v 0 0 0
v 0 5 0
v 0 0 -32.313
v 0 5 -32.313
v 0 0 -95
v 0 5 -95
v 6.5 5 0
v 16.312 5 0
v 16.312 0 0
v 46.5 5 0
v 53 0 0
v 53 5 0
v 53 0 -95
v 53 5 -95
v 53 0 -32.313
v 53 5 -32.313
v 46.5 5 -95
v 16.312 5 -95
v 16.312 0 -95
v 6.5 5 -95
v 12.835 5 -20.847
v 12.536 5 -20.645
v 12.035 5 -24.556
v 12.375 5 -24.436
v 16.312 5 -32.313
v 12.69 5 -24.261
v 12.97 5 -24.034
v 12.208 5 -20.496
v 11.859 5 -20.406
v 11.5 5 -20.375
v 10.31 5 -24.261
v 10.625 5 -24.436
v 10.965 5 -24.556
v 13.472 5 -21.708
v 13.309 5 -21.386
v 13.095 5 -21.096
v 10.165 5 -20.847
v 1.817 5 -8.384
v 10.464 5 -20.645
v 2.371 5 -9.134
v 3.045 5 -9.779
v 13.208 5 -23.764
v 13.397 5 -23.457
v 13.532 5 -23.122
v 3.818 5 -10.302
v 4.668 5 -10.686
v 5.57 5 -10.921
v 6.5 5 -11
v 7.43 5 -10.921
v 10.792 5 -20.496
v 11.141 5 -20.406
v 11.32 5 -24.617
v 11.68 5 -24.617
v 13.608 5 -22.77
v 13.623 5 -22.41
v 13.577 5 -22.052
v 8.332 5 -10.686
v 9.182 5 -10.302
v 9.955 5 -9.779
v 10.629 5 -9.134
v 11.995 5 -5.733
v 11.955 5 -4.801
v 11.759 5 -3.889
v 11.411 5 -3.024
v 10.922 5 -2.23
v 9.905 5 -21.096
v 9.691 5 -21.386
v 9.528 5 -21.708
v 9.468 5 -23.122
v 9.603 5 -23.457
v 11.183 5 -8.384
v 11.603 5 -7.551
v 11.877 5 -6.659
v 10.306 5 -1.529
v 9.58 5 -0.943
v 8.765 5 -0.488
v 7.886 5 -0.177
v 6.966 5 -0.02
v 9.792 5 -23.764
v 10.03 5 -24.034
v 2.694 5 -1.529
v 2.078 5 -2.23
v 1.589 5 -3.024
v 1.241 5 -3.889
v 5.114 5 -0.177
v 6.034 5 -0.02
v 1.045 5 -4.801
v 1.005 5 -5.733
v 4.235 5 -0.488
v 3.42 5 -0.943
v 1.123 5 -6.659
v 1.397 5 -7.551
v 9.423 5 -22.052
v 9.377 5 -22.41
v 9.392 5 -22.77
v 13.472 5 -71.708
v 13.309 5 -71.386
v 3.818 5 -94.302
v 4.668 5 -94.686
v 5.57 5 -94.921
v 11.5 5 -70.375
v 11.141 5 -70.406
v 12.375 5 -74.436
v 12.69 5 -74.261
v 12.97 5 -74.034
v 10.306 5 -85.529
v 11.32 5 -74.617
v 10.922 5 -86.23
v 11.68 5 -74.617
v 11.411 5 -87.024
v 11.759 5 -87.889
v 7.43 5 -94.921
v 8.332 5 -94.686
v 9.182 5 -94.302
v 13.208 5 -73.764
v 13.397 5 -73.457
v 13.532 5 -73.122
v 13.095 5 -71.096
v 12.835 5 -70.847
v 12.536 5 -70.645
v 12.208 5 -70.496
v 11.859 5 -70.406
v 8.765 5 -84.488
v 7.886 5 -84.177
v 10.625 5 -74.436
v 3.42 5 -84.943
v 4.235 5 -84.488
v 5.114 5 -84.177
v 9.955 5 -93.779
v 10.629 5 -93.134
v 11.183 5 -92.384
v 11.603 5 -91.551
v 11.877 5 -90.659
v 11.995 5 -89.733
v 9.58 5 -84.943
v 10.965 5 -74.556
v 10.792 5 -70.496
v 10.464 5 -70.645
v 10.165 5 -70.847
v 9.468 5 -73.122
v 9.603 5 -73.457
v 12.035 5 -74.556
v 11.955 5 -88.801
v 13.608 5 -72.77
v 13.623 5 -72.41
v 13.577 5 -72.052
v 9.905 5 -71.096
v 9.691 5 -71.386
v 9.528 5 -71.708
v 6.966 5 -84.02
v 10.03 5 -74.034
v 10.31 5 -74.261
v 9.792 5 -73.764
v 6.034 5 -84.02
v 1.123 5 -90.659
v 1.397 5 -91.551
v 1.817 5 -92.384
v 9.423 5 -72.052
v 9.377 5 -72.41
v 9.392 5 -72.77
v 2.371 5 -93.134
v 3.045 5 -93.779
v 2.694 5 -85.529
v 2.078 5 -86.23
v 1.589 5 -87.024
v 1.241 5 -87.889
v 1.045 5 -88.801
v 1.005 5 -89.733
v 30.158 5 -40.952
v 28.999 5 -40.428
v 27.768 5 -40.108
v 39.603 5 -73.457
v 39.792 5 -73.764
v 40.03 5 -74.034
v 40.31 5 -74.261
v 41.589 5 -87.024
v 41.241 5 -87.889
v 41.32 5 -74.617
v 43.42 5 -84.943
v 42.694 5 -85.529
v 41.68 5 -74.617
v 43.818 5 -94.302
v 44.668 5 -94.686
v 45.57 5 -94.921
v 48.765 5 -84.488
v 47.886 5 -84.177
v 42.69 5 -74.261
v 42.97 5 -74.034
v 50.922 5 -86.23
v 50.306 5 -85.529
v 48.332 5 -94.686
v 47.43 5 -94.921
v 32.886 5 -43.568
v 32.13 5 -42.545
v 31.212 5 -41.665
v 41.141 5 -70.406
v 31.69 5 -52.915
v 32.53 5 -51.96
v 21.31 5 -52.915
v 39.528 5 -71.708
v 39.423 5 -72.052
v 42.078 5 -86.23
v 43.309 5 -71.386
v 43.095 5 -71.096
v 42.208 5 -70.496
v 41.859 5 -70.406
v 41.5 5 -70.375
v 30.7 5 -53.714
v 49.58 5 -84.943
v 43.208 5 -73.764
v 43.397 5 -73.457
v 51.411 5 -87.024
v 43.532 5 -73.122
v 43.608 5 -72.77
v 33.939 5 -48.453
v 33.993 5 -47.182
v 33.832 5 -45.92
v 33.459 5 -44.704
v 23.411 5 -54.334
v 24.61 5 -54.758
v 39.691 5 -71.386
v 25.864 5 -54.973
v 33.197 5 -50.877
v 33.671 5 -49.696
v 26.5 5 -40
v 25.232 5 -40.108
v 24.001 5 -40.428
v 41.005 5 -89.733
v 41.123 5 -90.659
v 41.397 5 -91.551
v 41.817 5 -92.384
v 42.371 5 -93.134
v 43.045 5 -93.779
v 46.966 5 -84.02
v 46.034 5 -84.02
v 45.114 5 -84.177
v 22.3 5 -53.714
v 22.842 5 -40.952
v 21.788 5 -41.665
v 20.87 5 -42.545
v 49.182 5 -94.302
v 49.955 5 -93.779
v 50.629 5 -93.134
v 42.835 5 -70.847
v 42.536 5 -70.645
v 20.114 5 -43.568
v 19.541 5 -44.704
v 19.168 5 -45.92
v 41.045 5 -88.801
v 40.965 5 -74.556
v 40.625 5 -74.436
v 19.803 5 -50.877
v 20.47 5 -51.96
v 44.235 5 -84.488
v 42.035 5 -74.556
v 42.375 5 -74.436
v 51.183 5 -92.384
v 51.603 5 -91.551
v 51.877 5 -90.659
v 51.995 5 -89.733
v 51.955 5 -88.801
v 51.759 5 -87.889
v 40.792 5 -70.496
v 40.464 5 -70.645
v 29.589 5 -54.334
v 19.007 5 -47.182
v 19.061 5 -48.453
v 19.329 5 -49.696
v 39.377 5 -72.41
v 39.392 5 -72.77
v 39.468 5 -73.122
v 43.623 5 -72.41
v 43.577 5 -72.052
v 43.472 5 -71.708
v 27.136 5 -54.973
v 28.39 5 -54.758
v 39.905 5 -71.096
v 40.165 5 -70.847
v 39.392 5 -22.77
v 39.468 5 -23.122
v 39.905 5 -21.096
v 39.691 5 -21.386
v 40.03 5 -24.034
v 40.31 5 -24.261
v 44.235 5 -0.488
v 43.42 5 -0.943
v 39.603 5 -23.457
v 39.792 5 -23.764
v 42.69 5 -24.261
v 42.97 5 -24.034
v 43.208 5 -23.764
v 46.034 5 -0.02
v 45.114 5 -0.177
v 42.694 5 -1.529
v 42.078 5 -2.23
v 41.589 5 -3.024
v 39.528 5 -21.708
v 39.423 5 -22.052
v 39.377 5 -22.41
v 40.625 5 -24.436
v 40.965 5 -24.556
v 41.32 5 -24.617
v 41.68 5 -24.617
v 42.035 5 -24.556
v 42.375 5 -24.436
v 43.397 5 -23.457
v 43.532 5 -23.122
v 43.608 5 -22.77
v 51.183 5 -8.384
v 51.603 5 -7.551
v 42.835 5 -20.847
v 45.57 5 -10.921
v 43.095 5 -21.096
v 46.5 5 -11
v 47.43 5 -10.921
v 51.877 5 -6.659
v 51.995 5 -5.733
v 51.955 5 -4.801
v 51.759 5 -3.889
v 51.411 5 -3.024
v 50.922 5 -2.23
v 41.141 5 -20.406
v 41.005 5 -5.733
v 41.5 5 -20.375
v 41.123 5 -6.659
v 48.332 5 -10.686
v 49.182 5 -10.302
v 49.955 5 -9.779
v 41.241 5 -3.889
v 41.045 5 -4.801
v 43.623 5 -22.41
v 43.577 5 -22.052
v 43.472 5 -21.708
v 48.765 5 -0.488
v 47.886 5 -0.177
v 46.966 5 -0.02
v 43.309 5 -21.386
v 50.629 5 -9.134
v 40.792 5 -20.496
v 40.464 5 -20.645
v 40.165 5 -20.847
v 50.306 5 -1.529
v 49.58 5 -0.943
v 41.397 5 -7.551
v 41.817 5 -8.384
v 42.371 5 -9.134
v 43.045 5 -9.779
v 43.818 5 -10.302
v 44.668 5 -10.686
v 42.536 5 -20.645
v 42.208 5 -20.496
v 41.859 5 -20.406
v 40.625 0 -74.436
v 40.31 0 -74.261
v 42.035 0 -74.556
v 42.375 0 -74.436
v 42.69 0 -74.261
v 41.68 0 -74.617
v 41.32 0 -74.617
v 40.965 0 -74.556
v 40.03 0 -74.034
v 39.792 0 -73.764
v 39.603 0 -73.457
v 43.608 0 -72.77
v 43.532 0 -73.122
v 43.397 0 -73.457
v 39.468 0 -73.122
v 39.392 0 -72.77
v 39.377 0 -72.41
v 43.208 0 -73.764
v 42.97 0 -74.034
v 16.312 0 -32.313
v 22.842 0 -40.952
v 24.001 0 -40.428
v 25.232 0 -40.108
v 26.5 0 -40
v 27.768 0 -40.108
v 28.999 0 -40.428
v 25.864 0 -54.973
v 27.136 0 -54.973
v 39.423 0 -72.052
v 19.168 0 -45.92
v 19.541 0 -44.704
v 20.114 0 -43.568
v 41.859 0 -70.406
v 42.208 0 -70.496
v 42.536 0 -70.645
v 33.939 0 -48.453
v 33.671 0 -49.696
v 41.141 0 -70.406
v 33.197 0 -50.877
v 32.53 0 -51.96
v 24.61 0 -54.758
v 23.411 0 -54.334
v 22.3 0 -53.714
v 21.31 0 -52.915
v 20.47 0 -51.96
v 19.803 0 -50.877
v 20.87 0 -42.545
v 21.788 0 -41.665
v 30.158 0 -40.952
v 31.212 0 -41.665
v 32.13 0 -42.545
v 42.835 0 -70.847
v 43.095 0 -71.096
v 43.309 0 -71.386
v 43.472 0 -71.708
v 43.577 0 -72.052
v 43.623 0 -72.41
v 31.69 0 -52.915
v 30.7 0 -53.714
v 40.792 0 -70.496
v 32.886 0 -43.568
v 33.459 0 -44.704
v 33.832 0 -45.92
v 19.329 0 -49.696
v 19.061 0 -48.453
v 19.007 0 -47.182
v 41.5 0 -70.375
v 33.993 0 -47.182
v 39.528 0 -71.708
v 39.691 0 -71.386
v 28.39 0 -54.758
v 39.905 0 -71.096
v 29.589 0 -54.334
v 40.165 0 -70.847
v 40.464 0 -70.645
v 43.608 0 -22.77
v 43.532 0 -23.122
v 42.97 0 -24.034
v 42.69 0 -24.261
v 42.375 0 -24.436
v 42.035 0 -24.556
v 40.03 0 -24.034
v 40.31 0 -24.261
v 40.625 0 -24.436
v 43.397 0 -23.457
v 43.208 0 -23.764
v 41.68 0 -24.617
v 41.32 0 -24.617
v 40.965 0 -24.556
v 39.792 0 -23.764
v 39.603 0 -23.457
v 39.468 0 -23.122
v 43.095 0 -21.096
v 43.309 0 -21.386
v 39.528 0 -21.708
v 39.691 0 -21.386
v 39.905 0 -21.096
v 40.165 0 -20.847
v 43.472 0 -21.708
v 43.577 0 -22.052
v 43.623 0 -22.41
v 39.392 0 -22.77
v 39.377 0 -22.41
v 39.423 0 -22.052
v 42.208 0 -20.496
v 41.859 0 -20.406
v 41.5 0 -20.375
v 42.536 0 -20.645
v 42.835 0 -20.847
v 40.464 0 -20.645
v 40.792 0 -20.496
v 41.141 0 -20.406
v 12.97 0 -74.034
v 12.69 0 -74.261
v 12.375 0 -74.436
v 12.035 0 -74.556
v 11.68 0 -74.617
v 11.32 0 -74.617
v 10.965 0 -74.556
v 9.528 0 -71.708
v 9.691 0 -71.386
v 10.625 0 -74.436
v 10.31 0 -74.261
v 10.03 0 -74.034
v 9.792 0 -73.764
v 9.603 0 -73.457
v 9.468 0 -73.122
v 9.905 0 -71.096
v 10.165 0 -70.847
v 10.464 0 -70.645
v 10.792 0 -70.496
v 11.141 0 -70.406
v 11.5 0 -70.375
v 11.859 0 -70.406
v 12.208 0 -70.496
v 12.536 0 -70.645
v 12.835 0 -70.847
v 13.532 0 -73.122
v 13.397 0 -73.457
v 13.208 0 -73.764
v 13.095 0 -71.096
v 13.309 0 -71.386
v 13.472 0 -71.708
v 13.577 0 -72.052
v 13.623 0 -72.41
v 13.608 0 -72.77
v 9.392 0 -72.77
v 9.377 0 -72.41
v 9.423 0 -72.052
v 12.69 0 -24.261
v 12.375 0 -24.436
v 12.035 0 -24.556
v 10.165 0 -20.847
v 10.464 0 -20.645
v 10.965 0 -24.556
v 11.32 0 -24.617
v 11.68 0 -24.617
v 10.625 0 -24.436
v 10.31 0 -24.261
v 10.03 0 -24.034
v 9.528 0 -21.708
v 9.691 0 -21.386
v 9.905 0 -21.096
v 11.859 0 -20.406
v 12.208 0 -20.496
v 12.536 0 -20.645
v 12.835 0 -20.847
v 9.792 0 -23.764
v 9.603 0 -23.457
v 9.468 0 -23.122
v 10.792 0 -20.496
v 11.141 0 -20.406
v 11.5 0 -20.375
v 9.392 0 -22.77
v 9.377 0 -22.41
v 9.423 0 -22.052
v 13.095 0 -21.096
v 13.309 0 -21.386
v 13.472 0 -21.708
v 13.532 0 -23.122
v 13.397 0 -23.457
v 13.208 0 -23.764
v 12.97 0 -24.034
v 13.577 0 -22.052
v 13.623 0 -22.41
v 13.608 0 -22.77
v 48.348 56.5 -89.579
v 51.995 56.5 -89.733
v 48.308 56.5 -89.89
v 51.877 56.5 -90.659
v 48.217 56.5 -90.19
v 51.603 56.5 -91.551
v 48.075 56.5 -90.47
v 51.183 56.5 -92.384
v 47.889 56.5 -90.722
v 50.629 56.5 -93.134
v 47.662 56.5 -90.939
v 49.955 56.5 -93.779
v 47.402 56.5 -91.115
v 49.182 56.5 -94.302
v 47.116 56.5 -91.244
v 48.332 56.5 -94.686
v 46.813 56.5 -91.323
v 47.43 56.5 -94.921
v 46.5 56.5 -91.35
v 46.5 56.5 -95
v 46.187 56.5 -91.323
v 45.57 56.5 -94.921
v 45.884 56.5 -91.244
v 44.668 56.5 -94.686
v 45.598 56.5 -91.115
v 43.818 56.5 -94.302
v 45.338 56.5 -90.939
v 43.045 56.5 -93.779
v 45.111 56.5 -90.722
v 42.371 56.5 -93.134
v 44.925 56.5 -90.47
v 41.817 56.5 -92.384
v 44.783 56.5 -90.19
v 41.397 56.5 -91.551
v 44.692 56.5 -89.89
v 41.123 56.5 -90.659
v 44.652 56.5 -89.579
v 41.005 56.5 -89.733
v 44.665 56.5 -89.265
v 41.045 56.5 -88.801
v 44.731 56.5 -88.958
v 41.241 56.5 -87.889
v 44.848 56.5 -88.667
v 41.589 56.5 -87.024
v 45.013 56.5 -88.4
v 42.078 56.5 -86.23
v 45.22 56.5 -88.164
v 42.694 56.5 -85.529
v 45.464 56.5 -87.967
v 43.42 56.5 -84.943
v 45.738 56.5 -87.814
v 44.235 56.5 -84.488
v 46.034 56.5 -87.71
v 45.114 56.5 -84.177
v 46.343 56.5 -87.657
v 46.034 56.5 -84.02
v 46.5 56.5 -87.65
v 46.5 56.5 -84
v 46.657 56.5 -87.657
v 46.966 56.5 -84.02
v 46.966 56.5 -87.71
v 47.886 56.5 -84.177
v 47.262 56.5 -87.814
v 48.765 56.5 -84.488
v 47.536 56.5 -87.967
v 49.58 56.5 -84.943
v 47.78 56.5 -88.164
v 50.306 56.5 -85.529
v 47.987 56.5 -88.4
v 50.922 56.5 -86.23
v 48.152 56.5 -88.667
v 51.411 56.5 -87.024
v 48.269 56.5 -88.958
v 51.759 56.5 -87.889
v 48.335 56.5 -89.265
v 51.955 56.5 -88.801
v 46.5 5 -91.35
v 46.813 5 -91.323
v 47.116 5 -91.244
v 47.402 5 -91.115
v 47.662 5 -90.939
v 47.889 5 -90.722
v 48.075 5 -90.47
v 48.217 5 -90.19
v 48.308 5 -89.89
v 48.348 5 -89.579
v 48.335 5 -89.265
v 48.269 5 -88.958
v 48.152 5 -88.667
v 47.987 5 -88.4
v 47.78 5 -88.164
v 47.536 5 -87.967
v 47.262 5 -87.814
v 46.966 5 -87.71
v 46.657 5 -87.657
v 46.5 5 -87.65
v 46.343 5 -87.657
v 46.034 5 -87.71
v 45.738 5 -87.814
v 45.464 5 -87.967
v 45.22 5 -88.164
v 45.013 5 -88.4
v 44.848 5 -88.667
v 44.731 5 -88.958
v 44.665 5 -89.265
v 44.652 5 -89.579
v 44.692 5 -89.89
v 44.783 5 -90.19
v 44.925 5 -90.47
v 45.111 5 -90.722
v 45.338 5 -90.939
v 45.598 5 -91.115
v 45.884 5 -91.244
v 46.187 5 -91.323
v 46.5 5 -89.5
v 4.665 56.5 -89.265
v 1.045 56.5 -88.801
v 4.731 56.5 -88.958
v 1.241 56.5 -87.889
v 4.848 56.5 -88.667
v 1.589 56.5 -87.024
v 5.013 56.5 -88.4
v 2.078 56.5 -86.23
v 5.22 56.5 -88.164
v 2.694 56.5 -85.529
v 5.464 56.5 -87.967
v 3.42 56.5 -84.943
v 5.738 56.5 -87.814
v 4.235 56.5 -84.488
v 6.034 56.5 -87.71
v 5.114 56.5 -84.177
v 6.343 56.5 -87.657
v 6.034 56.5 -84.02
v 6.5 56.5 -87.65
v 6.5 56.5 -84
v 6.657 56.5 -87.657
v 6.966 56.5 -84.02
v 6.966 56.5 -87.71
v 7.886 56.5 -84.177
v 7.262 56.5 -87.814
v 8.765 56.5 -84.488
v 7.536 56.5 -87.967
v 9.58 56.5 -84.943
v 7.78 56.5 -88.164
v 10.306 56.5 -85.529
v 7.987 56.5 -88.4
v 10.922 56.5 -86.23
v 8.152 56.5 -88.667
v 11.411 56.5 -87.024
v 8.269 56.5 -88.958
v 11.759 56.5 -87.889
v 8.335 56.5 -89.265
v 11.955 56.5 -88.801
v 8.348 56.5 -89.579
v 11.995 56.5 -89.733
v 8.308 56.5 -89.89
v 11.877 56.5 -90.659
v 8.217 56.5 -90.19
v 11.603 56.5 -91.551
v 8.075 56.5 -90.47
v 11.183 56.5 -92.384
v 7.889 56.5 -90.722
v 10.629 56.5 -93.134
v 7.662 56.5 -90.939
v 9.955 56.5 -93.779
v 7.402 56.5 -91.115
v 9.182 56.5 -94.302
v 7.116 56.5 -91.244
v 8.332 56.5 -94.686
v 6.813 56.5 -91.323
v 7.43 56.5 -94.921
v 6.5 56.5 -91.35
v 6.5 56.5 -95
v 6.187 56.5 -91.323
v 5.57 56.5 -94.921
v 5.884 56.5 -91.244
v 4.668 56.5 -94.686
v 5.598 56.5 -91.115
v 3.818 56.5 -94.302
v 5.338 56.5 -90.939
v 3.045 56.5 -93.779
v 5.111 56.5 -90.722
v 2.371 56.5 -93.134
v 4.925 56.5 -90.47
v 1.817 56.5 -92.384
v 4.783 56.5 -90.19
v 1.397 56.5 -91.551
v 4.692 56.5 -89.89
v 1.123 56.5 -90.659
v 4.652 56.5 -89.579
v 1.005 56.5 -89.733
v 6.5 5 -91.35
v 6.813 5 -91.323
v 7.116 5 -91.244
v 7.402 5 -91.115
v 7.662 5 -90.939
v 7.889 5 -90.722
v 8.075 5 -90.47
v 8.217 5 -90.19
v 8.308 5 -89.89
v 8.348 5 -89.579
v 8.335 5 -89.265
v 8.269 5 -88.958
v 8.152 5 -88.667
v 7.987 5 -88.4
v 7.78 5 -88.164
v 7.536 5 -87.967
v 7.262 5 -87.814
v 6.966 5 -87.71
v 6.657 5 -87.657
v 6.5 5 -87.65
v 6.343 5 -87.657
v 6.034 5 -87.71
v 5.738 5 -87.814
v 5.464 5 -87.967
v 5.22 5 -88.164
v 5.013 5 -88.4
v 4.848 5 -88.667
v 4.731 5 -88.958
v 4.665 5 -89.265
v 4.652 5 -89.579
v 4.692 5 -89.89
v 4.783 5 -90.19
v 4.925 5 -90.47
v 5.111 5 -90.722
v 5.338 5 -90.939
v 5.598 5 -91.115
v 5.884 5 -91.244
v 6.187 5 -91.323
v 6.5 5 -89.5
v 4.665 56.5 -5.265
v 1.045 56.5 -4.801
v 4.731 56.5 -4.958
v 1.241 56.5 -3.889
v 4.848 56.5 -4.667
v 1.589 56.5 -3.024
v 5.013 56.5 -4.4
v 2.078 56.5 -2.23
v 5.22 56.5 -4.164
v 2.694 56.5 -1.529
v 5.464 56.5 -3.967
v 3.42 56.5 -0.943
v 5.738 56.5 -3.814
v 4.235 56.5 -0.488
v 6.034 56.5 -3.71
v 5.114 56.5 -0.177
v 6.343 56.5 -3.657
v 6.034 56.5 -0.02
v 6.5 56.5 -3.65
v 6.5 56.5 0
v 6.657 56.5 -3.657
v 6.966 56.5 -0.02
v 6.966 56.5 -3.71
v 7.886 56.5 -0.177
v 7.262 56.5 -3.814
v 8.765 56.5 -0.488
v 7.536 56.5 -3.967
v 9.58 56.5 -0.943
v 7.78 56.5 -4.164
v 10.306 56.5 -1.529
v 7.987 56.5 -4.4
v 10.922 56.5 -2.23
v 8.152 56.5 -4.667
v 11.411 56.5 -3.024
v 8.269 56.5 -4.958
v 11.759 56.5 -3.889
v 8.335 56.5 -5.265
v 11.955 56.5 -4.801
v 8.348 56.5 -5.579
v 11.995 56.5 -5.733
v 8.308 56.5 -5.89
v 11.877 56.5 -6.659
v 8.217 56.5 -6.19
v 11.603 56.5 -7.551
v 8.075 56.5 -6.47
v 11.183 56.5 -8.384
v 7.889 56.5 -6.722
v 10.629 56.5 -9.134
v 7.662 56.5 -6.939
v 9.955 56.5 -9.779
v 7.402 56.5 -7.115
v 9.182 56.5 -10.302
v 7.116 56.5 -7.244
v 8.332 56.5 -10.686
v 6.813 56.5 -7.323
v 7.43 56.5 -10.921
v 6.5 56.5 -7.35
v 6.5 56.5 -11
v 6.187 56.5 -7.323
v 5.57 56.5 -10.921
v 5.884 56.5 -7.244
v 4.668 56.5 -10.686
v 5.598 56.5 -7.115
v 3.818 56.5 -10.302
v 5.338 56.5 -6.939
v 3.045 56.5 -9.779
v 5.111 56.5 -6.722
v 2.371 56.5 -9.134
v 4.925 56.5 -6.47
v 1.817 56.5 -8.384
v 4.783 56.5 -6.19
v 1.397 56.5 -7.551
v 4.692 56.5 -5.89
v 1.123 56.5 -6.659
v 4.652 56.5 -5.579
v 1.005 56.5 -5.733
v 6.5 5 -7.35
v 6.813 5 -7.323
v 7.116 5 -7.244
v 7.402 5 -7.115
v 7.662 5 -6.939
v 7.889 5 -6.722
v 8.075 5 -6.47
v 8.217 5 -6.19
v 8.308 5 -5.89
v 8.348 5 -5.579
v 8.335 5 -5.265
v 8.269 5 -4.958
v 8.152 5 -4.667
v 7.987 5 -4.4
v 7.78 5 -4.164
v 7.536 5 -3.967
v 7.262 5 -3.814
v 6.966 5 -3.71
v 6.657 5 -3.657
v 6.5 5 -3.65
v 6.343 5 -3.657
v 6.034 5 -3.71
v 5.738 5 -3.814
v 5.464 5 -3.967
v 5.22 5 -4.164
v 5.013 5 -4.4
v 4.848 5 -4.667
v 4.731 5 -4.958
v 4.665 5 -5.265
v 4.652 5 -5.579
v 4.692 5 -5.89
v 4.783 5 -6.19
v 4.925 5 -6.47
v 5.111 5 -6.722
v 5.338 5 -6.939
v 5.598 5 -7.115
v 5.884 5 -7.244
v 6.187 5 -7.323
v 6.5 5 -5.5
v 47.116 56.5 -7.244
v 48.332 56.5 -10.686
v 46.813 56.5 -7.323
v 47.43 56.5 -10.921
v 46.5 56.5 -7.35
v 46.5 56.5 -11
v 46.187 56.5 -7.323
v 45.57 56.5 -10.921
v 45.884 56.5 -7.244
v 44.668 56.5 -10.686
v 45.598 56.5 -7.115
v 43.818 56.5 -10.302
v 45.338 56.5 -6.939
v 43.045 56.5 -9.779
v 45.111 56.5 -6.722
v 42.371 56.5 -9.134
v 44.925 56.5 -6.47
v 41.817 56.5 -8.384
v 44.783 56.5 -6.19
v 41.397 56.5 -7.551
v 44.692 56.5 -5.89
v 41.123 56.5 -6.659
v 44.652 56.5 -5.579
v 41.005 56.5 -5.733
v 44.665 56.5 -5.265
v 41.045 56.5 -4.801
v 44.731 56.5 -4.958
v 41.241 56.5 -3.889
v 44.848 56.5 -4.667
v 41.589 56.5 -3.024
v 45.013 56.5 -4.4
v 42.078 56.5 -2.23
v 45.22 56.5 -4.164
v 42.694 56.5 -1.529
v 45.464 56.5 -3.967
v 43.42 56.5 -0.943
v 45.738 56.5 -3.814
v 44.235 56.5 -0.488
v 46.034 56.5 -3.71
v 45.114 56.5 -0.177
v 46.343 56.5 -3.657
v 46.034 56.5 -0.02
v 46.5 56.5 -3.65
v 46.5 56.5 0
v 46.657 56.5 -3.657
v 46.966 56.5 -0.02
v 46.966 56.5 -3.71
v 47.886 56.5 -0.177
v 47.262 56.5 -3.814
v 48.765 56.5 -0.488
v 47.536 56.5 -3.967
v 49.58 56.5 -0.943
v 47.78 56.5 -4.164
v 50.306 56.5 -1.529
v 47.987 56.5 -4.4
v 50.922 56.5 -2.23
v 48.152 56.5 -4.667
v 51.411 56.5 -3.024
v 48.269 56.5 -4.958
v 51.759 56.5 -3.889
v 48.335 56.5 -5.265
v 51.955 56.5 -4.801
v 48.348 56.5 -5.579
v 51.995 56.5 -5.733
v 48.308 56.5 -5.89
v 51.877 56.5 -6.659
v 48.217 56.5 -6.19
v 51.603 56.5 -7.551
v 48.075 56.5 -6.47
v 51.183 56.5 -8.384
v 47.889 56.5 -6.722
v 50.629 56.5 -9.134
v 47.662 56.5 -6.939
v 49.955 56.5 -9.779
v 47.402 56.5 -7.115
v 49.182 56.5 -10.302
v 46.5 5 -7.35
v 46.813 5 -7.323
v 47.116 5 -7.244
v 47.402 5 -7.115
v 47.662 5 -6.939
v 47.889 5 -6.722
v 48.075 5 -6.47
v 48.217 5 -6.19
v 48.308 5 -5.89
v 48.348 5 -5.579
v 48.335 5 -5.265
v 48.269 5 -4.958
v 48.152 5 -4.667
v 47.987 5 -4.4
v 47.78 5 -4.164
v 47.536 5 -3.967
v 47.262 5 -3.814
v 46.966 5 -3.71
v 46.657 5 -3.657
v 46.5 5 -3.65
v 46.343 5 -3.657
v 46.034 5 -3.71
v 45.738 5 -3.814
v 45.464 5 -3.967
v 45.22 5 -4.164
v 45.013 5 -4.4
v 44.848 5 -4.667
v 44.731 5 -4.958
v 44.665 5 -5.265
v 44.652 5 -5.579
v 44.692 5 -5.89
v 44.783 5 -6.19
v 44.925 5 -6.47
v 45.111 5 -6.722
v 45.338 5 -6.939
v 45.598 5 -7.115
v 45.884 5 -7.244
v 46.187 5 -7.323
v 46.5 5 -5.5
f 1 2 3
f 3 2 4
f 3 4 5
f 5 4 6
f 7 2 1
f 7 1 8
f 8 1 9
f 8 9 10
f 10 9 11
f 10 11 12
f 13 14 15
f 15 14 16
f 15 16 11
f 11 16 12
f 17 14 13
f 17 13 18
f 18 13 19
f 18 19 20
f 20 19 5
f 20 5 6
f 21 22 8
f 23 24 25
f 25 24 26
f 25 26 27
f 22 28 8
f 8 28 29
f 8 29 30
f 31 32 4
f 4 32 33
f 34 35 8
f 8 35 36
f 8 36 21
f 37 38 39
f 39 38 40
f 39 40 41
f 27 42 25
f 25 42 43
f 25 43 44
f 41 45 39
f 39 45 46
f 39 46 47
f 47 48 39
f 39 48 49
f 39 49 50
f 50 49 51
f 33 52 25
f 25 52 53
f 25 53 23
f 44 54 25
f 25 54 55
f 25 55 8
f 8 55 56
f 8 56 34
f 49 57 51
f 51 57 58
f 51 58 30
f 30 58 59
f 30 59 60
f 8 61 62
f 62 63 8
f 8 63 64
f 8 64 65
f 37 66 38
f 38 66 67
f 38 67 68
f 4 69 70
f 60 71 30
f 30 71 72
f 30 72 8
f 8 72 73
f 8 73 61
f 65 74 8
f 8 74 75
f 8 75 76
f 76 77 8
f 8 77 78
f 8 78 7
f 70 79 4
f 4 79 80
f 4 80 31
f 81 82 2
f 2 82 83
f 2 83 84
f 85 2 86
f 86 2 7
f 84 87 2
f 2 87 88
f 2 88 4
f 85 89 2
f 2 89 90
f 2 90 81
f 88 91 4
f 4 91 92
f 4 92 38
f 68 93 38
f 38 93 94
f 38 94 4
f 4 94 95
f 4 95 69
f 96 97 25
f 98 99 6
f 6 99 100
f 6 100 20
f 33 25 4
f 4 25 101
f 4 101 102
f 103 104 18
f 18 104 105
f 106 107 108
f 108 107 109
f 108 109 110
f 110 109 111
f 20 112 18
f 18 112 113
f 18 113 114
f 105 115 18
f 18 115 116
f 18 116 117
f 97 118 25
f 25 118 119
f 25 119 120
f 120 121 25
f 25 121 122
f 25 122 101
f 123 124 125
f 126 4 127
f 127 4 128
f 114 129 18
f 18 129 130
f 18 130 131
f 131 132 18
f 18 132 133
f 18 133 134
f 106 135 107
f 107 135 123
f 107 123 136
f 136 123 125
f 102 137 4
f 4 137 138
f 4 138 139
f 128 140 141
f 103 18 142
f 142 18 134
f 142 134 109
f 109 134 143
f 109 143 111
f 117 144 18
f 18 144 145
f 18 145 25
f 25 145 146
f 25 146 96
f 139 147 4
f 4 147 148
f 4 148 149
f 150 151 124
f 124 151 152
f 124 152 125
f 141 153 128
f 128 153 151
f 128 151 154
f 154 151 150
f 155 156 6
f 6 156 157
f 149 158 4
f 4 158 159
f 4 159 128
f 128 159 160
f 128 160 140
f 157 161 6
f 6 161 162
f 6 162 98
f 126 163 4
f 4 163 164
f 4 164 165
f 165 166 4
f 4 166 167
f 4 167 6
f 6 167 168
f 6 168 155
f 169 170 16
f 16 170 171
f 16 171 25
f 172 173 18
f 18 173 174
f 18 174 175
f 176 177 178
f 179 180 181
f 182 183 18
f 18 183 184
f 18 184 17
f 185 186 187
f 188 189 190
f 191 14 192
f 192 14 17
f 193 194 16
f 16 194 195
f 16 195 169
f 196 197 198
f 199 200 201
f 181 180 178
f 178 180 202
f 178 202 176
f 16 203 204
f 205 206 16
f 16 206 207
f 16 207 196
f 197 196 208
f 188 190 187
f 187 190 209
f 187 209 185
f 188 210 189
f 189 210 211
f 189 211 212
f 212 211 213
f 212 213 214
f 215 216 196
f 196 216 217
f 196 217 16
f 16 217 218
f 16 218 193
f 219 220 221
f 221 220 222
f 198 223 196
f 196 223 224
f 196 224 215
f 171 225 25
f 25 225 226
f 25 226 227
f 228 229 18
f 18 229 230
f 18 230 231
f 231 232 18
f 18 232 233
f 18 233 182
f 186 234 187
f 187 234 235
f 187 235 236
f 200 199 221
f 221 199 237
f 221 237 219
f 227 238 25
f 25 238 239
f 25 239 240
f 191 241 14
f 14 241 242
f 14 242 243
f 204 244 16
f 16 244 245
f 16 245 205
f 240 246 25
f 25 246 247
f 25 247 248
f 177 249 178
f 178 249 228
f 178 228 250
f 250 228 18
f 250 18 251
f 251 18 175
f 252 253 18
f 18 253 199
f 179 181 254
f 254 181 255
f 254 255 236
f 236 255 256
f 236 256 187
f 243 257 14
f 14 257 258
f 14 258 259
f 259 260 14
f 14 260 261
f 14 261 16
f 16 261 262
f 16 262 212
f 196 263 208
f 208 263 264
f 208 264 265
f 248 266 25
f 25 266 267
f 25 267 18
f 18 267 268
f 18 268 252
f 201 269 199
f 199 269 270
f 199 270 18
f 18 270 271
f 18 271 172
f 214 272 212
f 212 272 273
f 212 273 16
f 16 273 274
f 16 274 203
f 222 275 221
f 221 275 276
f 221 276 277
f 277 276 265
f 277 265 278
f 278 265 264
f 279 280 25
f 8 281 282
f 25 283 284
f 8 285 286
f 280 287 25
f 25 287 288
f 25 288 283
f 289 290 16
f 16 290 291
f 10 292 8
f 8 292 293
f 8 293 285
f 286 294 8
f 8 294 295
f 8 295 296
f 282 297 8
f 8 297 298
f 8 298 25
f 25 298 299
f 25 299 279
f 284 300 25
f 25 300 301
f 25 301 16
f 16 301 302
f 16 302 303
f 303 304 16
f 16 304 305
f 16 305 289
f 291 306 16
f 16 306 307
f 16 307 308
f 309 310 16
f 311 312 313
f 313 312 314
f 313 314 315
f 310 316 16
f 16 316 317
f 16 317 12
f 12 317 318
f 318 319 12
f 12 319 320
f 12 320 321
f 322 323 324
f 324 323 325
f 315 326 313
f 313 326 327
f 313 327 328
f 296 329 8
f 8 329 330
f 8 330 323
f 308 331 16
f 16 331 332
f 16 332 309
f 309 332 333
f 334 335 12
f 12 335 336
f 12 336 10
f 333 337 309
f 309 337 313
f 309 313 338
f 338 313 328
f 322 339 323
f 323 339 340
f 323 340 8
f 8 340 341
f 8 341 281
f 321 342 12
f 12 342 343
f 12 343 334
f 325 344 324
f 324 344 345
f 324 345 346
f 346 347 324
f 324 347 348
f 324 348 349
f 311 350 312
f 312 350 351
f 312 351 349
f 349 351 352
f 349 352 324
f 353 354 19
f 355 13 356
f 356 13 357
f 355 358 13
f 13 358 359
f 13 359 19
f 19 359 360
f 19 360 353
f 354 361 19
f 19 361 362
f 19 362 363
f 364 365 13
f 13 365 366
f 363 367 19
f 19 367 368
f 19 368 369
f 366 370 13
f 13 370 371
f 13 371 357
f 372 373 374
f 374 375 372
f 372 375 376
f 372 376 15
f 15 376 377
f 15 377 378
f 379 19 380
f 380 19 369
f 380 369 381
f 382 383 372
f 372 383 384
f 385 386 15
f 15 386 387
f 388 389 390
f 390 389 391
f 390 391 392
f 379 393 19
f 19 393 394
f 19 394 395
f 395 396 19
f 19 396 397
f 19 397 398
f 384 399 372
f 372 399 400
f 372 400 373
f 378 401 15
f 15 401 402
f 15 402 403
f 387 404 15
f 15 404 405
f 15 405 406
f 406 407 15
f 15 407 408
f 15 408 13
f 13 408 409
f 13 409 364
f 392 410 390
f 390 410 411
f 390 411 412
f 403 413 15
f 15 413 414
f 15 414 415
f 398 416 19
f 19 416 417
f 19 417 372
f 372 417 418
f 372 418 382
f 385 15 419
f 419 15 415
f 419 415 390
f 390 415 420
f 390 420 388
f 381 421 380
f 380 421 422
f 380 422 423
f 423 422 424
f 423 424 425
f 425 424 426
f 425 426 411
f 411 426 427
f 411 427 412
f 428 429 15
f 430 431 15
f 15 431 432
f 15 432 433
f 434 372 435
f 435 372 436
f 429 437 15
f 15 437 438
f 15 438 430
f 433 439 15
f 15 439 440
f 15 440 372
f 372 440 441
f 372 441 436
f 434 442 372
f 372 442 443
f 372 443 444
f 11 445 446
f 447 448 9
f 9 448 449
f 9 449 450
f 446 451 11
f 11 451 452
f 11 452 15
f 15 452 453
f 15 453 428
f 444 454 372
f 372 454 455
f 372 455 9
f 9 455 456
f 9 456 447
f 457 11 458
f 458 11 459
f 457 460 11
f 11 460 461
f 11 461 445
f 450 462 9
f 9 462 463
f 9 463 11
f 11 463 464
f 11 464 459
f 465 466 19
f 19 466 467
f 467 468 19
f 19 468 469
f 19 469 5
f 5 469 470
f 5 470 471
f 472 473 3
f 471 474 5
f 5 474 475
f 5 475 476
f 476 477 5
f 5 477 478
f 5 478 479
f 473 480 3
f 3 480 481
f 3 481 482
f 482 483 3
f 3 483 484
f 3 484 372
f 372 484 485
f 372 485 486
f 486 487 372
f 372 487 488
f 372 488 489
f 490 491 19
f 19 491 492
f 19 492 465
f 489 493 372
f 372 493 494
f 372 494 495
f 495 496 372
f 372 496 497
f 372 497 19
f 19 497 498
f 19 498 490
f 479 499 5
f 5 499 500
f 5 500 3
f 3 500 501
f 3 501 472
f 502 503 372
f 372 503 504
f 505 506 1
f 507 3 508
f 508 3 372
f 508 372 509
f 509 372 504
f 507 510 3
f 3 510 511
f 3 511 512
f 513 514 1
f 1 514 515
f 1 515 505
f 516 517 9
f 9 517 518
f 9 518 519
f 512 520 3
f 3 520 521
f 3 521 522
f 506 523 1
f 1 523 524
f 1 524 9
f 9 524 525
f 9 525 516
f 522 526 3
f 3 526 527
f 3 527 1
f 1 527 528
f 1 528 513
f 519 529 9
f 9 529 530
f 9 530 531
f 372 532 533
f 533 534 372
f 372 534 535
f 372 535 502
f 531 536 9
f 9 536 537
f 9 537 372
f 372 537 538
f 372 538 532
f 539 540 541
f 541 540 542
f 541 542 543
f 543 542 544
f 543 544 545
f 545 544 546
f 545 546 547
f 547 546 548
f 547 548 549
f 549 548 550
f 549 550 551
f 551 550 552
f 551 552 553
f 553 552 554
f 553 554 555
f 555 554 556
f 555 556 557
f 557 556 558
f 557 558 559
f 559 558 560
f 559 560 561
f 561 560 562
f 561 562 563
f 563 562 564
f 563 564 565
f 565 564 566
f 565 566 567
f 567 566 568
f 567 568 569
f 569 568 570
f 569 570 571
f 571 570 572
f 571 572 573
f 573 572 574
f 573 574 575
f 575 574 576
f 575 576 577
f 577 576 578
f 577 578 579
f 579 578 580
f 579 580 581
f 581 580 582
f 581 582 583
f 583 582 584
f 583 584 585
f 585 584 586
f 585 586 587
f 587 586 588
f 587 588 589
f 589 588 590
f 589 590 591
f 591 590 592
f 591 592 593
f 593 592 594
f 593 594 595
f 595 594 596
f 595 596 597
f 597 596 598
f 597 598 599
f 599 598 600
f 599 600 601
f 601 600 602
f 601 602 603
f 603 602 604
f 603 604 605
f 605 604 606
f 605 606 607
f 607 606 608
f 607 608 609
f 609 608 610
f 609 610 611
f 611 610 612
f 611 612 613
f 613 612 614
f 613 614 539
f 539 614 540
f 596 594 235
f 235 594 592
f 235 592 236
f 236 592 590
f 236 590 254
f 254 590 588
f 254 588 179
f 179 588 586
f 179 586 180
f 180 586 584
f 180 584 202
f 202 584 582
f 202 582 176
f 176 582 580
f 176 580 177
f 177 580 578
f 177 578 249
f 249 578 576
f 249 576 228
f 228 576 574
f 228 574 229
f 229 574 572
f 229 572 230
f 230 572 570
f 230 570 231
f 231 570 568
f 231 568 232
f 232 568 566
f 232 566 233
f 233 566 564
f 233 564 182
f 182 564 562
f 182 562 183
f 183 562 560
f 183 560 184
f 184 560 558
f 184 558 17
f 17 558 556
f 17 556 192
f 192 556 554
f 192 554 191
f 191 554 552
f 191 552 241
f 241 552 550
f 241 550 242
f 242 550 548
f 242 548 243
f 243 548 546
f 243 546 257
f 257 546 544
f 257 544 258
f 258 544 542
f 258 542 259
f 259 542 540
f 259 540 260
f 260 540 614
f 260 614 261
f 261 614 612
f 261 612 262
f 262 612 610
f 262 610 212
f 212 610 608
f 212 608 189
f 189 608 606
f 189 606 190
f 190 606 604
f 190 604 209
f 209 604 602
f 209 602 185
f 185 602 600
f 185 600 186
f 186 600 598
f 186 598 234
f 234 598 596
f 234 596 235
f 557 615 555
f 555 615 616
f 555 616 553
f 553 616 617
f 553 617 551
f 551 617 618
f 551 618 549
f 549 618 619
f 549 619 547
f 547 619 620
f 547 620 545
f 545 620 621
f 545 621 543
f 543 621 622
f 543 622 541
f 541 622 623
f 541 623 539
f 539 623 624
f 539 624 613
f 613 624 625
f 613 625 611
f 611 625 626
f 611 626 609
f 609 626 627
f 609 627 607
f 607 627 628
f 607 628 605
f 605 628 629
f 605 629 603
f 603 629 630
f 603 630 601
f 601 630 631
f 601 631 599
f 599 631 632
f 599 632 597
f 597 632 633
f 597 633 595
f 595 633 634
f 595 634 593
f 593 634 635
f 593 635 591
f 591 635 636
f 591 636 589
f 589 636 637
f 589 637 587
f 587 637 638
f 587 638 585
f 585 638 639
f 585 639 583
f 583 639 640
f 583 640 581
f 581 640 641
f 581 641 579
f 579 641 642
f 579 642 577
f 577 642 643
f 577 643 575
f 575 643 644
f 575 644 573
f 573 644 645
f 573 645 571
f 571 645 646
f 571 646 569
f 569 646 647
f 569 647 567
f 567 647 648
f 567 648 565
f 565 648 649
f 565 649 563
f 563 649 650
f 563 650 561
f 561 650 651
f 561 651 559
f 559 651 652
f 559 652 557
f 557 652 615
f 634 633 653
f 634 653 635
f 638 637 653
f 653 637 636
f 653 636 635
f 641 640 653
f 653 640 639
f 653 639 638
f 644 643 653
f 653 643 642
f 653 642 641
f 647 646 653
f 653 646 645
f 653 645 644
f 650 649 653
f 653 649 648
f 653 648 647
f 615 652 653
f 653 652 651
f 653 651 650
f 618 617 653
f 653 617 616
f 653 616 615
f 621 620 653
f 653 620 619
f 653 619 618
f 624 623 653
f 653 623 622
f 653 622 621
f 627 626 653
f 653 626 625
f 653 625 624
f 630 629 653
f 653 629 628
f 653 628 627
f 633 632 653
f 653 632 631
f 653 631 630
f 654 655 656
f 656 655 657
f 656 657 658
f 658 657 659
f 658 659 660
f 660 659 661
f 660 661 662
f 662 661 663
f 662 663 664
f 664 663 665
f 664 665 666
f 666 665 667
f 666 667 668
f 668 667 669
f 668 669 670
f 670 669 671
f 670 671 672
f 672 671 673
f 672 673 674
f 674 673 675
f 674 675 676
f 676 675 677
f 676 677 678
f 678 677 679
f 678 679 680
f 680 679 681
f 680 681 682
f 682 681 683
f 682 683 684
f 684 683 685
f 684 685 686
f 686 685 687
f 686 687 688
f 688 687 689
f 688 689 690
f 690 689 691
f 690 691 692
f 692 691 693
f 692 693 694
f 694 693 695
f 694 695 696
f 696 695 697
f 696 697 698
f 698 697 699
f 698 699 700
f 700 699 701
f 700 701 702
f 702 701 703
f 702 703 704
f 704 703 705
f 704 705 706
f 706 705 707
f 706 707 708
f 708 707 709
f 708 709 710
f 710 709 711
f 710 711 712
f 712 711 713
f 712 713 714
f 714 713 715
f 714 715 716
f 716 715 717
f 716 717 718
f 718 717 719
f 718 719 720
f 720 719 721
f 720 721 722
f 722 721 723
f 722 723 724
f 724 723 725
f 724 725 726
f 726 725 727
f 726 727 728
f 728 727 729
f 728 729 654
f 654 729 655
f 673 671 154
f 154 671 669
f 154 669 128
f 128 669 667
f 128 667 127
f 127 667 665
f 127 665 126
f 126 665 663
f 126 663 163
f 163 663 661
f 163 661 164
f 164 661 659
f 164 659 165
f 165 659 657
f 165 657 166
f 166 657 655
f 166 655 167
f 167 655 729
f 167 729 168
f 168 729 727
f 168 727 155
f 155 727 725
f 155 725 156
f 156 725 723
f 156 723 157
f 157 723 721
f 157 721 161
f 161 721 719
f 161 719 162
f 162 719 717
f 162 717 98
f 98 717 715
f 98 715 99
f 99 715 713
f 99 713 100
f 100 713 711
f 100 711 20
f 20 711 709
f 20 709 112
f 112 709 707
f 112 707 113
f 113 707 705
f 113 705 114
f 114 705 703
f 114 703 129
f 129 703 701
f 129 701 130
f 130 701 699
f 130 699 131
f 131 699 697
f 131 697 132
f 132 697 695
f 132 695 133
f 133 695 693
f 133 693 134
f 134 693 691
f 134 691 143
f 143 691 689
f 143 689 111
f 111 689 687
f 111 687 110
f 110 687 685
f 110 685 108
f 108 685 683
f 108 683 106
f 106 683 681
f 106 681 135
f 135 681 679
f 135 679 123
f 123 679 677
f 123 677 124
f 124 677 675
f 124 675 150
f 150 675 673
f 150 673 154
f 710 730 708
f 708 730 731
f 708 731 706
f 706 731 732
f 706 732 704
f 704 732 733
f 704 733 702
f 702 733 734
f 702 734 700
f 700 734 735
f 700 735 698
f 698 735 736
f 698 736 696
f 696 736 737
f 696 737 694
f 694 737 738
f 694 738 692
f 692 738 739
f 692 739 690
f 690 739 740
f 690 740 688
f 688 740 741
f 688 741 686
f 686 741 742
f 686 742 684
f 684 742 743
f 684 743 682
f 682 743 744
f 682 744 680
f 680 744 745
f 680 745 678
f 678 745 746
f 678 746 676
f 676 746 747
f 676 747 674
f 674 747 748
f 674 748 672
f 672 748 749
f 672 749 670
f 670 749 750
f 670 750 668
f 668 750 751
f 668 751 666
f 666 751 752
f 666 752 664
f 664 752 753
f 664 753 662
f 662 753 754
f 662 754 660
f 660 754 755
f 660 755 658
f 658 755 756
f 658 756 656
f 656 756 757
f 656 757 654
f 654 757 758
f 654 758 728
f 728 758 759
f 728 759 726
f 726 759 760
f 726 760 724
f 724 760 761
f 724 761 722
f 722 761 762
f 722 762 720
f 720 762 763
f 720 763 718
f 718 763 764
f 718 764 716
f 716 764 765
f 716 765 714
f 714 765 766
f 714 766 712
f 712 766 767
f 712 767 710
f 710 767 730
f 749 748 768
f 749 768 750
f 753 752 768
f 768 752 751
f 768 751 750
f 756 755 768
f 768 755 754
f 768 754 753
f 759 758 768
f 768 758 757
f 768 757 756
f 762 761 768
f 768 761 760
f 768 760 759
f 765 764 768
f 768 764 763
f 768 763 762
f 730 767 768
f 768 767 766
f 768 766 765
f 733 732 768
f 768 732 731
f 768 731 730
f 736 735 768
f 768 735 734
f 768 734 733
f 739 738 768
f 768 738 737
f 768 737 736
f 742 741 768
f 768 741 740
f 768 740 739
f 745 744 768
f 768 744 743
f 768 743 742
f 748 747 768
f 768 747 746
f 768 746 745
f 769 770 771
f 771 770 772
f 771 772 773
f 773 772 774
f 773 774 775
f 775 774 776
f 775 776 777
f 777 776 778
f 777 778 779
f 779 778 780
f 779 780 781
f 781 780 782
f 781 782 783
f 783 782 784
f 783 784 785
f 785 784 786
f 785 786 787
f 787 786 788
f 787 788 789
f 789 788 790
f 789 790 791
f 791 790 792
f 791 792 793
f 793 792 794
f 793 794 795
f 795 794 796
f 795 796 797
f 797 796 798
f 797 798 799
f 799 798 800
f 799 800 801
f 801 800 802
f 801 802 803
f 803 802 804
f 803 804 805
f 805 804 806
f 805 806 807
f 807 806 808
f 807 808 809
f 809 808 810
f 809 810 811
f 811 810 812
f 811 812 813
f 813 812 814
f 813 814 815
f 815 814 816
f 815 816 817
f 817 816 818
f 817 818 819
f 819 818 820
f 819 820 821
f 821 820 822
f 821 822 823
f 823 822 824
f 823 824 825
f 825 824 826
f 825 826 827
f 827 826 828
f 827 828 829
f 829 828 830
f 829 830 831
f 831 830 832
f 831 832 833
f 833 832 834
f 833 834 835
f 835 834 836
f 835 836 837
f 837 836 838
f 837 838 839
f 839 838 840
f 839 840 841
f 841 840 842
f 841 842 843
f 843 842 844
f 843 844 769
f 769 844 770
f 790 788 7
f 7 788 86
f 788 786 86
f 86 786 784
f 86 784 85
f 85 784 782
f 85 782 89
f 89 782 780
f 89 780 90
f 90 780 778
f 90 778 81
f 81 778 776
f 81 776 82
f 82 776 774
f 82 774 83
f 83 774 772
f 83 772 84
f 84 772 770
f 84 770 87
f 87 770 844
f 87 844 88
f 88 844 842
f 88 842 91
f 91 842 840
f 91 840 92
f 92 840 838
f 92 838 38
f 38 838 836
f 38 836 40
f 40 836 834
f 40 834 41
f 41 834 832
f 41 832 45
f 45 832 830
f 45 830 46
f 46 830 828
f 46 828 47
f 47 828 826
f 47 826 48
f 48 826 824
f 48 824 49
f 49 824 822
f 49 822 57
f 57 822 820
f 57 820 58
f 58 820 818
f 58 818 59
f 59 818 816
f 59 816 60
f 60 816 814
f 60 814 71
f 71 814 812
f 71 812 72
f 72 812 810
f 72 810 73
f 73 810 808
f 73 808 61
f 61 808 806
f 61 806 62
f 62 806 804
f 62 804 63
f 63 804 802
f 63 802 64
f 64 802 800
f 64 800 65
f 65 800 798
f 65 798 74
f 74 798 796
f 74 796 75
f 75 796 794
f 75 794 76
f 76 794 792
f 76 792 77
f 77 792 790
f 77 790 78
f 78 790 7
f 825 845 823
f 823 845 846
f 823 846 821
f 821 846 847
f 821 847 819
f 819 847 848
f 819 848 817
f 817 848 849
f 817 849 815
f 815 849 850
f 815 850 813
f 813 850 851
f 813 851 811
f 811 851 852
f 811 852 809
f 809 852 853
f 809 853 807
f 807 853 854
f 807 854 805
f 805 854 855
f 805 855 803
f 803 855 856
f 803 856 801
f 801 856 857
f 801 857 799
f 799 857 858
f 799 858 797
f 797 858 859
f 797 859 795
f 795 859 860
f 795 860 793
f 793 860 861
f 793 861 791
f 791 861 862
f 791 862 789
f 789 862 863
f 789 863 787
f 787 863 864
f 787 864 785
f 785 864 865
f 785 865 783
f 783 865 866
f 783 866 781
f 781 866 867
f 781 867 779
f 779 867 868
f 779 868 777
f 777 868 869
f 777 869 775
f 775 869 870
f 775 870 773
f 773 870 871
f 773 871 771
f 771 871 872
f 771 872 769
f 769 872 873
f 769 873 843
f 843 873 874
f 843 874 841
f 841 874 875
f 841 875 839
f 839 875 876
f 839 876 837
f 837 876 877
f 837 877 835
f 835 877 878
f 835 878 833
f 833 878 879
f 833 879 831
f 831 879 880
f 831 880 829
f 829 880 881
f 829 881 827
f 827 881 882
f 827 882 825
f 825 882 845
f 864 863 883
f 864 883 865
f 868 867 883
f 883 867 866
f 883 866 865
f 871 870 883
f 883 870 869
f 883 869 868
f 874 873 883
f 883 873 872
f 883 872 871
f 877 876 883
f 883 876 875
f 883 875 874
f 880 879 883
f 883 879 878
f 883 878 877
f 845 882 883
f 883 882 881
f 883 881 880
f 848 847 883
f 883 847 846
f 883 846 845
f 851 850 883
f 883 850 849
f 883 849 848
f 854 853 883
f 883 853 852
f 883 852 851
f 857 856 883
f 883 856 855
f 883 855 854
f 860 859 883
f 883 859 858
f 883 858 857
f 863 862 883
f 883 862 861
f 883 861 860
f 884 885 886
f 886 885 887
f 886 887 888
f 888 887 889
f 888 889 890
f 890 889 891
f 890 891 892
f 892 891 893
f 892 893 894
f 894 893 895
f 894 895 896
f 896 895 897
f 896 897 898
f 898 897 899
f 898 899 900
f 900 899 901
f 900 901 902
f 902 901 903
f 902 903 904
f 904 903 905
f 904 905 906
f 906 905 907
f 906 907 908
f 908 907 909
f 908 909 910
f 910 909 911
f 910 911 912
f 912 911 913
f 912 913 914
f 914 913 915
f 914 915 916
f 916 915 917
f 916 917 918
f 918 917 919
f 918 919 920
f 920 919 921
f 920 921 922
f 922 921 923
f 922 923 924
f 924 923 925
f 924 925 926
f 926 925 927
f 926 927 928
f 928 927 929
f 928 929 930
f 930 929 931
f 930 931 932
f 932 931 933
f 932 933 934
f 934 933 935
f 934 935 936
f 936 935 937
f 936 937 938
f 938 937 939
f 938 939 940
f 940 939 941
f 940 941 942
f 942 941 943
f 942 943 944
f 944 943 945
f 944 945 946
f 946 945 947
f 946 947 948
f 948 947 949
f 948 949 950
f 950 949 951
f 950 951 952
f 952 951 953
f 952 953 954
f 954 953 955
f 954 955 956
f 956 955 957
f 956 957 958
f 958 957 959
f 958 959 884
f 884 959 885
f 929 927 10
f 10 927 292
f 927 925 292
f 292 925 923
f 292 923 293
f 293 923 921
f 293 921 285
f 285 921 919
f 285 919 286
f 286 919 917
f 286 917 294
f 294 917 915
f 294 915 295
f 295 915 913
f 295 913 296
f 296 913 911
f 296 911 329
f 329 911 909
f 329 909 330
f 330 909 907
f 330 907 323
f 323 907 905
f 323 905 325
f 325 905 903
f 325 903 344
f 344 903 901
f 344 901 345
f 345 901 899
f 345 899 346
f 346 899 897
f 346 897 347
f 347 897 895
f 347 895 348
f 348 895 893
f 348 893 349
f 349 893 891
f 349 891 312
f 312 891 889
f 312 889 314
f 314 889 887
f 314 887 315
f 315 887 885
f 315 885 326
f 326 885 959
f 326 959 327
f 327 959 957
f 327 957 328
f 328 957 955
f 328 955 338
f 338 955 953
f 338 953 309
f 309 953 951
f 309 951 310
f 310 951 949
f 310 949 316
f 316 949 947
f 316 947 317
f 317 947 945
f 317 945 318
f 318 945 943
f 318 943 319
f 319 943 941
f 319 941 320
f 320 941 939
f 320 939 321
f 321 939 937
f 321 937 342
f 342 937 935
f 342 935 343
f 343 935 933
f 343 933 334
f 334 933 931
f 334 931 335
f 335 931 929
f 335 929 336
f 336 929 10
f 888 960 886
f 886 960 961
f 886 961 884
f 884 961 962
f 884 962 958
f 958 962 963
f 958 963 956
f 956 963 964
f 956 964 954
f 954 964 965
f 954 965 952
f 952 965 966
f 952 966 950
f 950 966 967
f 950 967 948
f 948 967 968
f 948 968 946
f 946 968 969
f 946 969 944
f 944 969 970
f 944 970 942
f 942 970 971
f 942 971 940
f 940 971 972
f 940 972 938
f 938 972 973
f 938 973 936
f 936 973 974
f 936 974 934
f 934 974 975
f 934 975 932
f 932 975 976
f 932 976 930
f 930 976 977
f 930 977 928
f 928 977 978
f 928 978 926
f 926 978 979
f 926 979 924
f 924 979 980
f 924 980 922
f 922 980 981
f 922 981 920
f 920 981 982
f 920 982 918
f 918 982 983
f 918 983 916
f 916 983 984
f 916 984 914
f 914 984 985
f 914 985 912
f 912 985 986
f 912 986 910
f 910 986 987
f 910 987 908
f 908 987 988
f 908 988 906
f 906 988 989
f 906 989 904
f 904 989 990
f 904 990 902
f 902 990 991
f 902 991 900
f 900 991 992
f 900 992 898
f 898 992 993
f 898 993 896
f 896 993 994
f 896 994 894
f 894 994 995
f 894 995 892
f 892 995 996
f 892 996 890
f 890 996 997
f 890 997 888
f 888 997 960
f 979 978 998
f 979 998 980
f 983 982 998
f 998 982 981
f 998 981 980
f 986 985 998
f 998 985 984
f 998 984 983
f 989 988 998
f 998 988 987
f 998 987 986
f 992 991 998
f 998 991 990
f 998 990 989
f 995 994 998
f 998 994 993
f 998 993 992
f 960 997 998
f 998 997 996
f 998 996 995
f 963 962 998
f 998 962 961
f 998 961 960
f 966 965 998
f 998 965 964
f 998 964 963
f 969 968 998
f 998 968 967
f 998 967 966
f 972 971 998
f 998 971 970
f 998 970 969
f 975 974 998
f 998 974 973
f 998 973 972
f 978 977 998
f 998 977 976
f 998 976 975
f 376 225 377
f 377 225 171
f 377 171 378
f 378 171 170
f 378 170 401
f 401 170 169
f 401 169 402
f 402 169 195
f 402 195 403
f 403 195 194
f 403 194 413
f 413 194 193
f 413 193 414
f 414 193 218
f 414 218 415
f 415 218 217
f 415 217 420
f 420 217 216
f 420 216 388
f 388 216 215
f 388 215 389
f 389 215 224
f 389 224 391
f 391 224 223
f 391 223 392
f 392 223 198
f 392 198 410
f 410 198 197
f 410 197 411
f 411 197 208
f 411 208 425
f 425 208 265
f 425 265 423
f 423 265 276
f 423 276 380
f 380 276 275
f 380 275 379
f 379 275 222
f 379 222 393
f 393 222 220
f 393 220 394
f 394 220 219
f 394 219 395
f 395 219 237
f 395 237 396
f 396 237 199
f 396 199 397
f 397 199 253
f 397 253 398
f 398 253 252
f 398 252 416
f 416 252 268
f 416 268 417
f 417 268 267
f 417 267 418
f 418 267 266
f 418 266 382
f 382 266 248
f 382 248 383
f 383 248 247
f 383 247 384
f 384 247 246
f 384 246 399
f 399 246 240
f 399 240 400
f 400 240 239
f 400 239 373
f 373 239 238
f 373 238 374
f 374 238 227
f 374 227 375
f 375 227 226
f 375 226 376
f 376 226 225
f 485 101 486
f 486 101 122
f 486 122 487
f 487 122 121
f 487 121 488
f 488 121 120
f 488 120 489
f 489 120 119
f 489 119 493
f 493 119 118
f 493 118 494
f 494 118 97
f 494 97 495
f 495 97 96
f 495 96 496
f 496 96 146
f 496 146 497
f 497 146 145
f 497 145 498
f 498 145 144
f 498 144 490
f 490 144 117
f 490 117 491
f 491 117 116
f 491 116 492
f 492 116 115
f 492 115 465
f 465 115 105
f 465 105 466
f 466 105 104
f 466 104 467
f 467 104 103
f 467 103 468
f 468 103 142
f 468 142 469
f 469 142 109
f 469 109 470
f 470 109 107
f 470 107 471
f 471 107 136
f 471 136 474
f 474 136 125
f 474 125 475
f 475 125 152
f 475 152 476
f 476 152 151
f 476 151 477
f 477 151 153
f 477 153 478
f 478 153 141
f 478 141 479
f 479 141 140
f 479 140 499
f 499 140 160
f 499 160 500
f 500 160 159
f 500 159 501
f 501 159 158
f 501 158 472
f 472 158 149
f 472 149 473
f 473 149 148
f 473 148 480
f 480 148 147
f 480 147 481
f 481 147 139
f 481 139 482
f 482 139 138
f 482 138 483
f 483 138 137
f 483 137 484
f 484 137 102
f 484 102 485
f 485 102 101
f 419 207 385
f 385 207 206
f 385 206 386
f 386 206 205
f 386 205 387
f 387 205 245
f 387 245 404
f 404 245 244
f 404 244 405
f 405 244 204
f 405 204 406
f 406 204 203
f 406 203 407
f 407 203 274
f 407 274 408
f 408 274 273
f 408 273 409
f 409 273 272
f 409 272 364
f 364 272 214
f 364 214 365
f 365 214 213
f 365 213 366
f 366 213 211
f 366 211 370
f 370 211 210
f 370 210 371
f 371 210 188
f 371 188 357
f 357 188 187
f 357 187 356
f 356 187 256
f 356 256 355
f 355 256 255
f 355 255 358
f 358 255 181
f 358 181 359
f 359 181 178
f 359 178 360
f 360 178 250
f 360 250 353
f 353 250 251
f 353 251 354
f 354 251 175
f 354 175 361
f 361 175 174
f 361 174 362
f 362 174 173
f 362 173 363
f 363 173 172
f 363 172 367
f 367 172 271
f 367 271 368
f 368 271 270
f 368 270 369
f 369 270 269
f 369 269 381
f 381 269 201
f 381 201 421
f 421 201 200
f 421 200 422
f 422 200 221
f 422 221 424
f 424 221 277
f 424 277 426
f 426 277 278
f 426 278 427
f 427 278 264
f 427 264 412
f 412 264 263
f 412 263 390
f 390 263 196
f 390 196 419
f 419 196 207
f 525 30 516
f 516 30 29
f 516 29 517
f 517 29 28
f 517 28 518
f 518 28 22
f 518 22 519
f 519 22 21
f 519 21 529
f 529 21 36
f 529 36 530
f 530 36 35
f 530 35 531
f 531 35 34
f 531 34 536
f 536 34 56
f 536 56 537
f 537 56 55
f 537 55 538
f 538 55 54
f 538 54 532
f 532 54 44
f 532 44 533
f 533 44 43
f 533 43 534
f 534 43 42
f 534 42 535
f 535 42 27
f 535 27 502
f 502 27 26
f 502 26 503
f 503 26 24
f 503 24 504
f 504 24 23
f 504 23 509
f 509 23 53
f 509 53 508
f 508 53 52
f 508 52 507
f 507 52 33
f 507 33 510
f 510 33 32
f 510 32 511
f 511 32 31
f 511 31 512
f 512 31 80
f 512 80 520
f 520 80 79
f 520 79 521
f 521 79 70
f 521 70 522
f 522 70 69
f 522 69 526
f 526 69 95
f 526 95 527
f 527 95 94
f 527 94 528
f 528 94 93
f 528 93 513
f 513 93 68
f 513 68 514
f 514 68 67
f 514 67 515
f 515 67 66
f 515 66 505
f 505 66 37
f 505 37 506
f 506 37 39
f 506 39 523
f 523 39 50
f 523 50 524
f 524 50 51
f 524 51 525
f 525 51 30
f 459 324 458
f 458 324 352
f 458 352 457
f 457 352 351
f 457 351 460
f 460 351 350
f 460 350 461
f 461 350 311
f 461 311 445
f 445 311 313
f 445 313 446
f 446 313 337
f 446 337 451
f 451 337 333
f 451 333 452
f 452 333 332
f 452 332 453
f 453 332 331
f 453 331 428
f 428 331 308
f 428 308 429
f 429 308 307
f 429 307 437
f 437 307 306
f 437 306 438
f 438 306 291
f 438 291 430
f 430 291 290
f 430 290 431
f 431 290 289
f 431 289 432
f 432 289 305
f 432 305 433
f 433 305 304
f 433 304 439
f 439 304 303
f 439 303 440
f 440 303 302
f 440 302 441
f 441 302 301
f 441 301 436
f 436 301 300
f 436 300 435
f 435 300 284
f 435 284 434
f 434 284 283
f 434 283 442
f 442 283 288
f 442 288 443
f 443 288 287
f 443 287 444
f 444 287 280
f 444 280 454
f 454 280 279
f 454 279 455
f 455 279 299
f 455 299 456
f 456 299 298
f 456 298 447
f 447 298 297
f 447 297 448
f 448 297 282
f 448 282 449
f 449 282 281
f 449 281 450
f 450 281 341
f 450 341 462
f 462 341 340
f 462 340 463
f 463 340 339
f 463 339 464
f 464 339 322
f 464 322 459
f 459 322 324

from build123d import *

# Parameters (mm, degrees)
SKETCH1_W           = 53
SKETCH1_H           = 95
BOSS_EXTRUDE1_DEPTH = 5
SKETCH2_R           = 5.5
SKETCH2_R_2         = 1.85
BOSS_EXTRUDE2_DEPTH = 51.5
SKETCH4_R           = 7.5
SKETCH4_R_2         = 2.125
CUT_EXTRUDE1_DEPTH  = 6


with BuildPart() as part:
    # Sketch1 → Boss-Extrude1 (new body)
    with BuildSketch(Plane(origin=(0, 0, 0), x_dir=(1, 0, 0), z_dir=(0, 1, 0))):
        with Locations((26.5, 47.5)):
            Rectangle(SKETCH1_W, SKETCH1_H)
    extrude(amount=BOSS_EXTRUDE1_DEPTH)

    # Sketch2 → Boss-Extrude2 (add)
    with BuildSketch(Plane(origin=(0, 5, 0), x_dir=(1, 0, 0), z_dir=(0, 1, 0))):
        with Locations((46.5, 89.5)):
            Circle(SKETCH2_R)
        with Locations((46.5, 89.5)):
            Circle(SKETCH2_R_2, mode=Mode.SUBTRACT)
        with Locations((6.5, 89.5)):
            Circle(SKETCH2_R)
        with Locations((6.5, 89.5)):
            Circle(SKETCH2_R_2, mode=Mode.SUBTRACT)
        with Locations((6.5, 5.5)):
            Circle(SKETCH2_R)
        with Locations((6.5, 5.5)):
            Circle(SKETCH2_R_2, mode=Mode.SUBTRACT)
        with Locations((46.5, 5.5)):
            Circle(SKETCH2_R)
        with Locations((46.5, 5.5)):
            Circle(SKETCH2_R_2, mode=Mode.SUBTRACT)
    extrude(amount=BOSS_EXTRUDE2_DEPTH)

    # Sketch4 → Cut-Extrude1 (cut, through all)
    with BuildSketch(Plane(origin=(0, 5, 0), x_dir=(1, 0, 0), z_dir=(0, 1, 0))):
        with Locations((26.5, 47.5)):
            Circle(SKETCH4_R)
        with Locations((11.5, 72.5)):
            Circle(SKETCH4_R_2)
        with Locations((41.5, 72.5)):
            Circle(SKETCH4_R_2)
        with Locations((11.5, 22.5)):
            Circle(SKETCH4_R_2)
        with Locations((41.5, 22.5)):
            Circle(SKETCH4_R_2)
    extrude(amount=-CUT_EXTRUDE1_DEPTH, mode=Mode.SUBTRACT)


solid = part.part
